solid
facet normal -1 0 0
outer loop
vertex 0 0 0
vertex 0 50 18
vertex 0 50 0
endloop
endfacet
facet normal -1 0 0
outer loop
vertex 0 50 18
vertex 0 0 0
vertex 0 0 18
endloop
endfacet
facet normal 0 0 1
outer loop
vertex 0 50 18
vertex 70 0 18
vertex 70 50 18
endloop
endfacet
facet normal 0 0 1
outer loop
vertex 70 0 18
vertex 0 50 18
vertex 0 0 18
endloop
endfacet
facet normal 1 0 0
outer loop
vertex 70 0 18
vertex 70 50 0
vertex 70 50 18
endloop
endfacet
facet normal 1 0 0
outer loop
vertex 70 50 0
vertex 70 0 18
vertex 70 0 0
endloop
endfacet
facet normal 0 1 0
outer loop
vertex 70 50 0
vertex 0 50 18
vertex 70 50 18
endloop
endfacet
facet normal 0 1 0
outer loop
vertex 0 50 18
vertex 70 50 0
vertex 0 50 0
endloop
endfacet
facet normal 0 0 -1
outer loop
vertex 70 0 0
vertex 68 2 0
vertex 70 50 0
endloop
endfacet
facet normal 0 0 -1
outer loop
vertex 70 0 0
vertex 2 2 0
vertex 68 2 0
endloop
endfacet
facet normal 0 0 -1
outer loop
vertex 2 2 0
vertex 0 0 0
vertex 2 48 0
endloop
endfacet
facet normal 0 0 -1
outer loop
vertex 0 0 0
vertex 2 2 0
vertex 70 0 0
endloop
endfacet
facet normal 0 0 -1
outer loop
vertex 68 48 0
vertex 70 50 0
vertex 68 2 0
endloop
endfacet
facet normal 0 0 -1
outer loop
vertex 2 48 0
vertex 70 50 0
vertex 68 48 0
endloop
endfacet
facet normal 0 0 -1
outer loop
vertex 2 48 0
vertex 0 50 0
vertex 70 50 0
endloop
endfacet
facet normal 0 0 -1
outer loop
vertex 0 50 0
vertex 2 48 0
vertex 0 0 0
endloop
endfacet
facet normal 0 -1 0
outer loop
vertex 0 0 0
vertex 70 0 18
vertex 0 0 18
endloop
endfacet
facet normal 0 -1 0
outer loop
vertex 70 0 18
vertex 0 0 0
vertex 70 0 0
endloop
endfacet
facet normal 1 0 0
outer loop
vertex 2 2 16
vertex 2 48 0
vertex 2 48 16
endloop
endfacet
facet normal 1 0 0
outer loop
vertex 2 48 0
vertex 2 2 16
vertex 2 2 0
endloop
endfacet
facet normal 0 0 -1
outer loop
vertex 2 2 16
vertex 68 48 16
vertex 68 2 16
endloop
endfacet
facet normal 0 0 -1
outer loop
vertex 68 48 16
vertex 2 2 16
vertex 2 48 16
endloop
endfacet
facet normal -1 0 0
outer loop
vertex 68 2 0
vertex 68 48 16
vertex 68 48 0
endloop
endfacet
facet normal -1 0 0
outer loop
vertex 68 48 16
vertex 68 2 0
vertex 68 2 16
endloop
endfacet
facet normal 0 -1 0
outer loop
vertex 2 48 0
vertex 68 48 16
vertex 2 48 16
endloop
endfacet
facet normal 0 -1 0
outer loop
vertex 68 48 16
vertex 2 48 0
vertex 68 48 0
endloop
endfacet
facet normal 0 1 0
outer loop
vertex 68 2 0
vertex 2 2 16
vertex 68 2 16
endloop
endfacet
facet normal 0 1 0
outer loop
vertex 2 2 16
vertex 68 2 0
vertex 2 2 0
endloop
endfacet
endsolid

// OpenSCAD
difference() {
cube([70,50,18]);
translate([2,2,0]) cube([66,46,16]);
}
